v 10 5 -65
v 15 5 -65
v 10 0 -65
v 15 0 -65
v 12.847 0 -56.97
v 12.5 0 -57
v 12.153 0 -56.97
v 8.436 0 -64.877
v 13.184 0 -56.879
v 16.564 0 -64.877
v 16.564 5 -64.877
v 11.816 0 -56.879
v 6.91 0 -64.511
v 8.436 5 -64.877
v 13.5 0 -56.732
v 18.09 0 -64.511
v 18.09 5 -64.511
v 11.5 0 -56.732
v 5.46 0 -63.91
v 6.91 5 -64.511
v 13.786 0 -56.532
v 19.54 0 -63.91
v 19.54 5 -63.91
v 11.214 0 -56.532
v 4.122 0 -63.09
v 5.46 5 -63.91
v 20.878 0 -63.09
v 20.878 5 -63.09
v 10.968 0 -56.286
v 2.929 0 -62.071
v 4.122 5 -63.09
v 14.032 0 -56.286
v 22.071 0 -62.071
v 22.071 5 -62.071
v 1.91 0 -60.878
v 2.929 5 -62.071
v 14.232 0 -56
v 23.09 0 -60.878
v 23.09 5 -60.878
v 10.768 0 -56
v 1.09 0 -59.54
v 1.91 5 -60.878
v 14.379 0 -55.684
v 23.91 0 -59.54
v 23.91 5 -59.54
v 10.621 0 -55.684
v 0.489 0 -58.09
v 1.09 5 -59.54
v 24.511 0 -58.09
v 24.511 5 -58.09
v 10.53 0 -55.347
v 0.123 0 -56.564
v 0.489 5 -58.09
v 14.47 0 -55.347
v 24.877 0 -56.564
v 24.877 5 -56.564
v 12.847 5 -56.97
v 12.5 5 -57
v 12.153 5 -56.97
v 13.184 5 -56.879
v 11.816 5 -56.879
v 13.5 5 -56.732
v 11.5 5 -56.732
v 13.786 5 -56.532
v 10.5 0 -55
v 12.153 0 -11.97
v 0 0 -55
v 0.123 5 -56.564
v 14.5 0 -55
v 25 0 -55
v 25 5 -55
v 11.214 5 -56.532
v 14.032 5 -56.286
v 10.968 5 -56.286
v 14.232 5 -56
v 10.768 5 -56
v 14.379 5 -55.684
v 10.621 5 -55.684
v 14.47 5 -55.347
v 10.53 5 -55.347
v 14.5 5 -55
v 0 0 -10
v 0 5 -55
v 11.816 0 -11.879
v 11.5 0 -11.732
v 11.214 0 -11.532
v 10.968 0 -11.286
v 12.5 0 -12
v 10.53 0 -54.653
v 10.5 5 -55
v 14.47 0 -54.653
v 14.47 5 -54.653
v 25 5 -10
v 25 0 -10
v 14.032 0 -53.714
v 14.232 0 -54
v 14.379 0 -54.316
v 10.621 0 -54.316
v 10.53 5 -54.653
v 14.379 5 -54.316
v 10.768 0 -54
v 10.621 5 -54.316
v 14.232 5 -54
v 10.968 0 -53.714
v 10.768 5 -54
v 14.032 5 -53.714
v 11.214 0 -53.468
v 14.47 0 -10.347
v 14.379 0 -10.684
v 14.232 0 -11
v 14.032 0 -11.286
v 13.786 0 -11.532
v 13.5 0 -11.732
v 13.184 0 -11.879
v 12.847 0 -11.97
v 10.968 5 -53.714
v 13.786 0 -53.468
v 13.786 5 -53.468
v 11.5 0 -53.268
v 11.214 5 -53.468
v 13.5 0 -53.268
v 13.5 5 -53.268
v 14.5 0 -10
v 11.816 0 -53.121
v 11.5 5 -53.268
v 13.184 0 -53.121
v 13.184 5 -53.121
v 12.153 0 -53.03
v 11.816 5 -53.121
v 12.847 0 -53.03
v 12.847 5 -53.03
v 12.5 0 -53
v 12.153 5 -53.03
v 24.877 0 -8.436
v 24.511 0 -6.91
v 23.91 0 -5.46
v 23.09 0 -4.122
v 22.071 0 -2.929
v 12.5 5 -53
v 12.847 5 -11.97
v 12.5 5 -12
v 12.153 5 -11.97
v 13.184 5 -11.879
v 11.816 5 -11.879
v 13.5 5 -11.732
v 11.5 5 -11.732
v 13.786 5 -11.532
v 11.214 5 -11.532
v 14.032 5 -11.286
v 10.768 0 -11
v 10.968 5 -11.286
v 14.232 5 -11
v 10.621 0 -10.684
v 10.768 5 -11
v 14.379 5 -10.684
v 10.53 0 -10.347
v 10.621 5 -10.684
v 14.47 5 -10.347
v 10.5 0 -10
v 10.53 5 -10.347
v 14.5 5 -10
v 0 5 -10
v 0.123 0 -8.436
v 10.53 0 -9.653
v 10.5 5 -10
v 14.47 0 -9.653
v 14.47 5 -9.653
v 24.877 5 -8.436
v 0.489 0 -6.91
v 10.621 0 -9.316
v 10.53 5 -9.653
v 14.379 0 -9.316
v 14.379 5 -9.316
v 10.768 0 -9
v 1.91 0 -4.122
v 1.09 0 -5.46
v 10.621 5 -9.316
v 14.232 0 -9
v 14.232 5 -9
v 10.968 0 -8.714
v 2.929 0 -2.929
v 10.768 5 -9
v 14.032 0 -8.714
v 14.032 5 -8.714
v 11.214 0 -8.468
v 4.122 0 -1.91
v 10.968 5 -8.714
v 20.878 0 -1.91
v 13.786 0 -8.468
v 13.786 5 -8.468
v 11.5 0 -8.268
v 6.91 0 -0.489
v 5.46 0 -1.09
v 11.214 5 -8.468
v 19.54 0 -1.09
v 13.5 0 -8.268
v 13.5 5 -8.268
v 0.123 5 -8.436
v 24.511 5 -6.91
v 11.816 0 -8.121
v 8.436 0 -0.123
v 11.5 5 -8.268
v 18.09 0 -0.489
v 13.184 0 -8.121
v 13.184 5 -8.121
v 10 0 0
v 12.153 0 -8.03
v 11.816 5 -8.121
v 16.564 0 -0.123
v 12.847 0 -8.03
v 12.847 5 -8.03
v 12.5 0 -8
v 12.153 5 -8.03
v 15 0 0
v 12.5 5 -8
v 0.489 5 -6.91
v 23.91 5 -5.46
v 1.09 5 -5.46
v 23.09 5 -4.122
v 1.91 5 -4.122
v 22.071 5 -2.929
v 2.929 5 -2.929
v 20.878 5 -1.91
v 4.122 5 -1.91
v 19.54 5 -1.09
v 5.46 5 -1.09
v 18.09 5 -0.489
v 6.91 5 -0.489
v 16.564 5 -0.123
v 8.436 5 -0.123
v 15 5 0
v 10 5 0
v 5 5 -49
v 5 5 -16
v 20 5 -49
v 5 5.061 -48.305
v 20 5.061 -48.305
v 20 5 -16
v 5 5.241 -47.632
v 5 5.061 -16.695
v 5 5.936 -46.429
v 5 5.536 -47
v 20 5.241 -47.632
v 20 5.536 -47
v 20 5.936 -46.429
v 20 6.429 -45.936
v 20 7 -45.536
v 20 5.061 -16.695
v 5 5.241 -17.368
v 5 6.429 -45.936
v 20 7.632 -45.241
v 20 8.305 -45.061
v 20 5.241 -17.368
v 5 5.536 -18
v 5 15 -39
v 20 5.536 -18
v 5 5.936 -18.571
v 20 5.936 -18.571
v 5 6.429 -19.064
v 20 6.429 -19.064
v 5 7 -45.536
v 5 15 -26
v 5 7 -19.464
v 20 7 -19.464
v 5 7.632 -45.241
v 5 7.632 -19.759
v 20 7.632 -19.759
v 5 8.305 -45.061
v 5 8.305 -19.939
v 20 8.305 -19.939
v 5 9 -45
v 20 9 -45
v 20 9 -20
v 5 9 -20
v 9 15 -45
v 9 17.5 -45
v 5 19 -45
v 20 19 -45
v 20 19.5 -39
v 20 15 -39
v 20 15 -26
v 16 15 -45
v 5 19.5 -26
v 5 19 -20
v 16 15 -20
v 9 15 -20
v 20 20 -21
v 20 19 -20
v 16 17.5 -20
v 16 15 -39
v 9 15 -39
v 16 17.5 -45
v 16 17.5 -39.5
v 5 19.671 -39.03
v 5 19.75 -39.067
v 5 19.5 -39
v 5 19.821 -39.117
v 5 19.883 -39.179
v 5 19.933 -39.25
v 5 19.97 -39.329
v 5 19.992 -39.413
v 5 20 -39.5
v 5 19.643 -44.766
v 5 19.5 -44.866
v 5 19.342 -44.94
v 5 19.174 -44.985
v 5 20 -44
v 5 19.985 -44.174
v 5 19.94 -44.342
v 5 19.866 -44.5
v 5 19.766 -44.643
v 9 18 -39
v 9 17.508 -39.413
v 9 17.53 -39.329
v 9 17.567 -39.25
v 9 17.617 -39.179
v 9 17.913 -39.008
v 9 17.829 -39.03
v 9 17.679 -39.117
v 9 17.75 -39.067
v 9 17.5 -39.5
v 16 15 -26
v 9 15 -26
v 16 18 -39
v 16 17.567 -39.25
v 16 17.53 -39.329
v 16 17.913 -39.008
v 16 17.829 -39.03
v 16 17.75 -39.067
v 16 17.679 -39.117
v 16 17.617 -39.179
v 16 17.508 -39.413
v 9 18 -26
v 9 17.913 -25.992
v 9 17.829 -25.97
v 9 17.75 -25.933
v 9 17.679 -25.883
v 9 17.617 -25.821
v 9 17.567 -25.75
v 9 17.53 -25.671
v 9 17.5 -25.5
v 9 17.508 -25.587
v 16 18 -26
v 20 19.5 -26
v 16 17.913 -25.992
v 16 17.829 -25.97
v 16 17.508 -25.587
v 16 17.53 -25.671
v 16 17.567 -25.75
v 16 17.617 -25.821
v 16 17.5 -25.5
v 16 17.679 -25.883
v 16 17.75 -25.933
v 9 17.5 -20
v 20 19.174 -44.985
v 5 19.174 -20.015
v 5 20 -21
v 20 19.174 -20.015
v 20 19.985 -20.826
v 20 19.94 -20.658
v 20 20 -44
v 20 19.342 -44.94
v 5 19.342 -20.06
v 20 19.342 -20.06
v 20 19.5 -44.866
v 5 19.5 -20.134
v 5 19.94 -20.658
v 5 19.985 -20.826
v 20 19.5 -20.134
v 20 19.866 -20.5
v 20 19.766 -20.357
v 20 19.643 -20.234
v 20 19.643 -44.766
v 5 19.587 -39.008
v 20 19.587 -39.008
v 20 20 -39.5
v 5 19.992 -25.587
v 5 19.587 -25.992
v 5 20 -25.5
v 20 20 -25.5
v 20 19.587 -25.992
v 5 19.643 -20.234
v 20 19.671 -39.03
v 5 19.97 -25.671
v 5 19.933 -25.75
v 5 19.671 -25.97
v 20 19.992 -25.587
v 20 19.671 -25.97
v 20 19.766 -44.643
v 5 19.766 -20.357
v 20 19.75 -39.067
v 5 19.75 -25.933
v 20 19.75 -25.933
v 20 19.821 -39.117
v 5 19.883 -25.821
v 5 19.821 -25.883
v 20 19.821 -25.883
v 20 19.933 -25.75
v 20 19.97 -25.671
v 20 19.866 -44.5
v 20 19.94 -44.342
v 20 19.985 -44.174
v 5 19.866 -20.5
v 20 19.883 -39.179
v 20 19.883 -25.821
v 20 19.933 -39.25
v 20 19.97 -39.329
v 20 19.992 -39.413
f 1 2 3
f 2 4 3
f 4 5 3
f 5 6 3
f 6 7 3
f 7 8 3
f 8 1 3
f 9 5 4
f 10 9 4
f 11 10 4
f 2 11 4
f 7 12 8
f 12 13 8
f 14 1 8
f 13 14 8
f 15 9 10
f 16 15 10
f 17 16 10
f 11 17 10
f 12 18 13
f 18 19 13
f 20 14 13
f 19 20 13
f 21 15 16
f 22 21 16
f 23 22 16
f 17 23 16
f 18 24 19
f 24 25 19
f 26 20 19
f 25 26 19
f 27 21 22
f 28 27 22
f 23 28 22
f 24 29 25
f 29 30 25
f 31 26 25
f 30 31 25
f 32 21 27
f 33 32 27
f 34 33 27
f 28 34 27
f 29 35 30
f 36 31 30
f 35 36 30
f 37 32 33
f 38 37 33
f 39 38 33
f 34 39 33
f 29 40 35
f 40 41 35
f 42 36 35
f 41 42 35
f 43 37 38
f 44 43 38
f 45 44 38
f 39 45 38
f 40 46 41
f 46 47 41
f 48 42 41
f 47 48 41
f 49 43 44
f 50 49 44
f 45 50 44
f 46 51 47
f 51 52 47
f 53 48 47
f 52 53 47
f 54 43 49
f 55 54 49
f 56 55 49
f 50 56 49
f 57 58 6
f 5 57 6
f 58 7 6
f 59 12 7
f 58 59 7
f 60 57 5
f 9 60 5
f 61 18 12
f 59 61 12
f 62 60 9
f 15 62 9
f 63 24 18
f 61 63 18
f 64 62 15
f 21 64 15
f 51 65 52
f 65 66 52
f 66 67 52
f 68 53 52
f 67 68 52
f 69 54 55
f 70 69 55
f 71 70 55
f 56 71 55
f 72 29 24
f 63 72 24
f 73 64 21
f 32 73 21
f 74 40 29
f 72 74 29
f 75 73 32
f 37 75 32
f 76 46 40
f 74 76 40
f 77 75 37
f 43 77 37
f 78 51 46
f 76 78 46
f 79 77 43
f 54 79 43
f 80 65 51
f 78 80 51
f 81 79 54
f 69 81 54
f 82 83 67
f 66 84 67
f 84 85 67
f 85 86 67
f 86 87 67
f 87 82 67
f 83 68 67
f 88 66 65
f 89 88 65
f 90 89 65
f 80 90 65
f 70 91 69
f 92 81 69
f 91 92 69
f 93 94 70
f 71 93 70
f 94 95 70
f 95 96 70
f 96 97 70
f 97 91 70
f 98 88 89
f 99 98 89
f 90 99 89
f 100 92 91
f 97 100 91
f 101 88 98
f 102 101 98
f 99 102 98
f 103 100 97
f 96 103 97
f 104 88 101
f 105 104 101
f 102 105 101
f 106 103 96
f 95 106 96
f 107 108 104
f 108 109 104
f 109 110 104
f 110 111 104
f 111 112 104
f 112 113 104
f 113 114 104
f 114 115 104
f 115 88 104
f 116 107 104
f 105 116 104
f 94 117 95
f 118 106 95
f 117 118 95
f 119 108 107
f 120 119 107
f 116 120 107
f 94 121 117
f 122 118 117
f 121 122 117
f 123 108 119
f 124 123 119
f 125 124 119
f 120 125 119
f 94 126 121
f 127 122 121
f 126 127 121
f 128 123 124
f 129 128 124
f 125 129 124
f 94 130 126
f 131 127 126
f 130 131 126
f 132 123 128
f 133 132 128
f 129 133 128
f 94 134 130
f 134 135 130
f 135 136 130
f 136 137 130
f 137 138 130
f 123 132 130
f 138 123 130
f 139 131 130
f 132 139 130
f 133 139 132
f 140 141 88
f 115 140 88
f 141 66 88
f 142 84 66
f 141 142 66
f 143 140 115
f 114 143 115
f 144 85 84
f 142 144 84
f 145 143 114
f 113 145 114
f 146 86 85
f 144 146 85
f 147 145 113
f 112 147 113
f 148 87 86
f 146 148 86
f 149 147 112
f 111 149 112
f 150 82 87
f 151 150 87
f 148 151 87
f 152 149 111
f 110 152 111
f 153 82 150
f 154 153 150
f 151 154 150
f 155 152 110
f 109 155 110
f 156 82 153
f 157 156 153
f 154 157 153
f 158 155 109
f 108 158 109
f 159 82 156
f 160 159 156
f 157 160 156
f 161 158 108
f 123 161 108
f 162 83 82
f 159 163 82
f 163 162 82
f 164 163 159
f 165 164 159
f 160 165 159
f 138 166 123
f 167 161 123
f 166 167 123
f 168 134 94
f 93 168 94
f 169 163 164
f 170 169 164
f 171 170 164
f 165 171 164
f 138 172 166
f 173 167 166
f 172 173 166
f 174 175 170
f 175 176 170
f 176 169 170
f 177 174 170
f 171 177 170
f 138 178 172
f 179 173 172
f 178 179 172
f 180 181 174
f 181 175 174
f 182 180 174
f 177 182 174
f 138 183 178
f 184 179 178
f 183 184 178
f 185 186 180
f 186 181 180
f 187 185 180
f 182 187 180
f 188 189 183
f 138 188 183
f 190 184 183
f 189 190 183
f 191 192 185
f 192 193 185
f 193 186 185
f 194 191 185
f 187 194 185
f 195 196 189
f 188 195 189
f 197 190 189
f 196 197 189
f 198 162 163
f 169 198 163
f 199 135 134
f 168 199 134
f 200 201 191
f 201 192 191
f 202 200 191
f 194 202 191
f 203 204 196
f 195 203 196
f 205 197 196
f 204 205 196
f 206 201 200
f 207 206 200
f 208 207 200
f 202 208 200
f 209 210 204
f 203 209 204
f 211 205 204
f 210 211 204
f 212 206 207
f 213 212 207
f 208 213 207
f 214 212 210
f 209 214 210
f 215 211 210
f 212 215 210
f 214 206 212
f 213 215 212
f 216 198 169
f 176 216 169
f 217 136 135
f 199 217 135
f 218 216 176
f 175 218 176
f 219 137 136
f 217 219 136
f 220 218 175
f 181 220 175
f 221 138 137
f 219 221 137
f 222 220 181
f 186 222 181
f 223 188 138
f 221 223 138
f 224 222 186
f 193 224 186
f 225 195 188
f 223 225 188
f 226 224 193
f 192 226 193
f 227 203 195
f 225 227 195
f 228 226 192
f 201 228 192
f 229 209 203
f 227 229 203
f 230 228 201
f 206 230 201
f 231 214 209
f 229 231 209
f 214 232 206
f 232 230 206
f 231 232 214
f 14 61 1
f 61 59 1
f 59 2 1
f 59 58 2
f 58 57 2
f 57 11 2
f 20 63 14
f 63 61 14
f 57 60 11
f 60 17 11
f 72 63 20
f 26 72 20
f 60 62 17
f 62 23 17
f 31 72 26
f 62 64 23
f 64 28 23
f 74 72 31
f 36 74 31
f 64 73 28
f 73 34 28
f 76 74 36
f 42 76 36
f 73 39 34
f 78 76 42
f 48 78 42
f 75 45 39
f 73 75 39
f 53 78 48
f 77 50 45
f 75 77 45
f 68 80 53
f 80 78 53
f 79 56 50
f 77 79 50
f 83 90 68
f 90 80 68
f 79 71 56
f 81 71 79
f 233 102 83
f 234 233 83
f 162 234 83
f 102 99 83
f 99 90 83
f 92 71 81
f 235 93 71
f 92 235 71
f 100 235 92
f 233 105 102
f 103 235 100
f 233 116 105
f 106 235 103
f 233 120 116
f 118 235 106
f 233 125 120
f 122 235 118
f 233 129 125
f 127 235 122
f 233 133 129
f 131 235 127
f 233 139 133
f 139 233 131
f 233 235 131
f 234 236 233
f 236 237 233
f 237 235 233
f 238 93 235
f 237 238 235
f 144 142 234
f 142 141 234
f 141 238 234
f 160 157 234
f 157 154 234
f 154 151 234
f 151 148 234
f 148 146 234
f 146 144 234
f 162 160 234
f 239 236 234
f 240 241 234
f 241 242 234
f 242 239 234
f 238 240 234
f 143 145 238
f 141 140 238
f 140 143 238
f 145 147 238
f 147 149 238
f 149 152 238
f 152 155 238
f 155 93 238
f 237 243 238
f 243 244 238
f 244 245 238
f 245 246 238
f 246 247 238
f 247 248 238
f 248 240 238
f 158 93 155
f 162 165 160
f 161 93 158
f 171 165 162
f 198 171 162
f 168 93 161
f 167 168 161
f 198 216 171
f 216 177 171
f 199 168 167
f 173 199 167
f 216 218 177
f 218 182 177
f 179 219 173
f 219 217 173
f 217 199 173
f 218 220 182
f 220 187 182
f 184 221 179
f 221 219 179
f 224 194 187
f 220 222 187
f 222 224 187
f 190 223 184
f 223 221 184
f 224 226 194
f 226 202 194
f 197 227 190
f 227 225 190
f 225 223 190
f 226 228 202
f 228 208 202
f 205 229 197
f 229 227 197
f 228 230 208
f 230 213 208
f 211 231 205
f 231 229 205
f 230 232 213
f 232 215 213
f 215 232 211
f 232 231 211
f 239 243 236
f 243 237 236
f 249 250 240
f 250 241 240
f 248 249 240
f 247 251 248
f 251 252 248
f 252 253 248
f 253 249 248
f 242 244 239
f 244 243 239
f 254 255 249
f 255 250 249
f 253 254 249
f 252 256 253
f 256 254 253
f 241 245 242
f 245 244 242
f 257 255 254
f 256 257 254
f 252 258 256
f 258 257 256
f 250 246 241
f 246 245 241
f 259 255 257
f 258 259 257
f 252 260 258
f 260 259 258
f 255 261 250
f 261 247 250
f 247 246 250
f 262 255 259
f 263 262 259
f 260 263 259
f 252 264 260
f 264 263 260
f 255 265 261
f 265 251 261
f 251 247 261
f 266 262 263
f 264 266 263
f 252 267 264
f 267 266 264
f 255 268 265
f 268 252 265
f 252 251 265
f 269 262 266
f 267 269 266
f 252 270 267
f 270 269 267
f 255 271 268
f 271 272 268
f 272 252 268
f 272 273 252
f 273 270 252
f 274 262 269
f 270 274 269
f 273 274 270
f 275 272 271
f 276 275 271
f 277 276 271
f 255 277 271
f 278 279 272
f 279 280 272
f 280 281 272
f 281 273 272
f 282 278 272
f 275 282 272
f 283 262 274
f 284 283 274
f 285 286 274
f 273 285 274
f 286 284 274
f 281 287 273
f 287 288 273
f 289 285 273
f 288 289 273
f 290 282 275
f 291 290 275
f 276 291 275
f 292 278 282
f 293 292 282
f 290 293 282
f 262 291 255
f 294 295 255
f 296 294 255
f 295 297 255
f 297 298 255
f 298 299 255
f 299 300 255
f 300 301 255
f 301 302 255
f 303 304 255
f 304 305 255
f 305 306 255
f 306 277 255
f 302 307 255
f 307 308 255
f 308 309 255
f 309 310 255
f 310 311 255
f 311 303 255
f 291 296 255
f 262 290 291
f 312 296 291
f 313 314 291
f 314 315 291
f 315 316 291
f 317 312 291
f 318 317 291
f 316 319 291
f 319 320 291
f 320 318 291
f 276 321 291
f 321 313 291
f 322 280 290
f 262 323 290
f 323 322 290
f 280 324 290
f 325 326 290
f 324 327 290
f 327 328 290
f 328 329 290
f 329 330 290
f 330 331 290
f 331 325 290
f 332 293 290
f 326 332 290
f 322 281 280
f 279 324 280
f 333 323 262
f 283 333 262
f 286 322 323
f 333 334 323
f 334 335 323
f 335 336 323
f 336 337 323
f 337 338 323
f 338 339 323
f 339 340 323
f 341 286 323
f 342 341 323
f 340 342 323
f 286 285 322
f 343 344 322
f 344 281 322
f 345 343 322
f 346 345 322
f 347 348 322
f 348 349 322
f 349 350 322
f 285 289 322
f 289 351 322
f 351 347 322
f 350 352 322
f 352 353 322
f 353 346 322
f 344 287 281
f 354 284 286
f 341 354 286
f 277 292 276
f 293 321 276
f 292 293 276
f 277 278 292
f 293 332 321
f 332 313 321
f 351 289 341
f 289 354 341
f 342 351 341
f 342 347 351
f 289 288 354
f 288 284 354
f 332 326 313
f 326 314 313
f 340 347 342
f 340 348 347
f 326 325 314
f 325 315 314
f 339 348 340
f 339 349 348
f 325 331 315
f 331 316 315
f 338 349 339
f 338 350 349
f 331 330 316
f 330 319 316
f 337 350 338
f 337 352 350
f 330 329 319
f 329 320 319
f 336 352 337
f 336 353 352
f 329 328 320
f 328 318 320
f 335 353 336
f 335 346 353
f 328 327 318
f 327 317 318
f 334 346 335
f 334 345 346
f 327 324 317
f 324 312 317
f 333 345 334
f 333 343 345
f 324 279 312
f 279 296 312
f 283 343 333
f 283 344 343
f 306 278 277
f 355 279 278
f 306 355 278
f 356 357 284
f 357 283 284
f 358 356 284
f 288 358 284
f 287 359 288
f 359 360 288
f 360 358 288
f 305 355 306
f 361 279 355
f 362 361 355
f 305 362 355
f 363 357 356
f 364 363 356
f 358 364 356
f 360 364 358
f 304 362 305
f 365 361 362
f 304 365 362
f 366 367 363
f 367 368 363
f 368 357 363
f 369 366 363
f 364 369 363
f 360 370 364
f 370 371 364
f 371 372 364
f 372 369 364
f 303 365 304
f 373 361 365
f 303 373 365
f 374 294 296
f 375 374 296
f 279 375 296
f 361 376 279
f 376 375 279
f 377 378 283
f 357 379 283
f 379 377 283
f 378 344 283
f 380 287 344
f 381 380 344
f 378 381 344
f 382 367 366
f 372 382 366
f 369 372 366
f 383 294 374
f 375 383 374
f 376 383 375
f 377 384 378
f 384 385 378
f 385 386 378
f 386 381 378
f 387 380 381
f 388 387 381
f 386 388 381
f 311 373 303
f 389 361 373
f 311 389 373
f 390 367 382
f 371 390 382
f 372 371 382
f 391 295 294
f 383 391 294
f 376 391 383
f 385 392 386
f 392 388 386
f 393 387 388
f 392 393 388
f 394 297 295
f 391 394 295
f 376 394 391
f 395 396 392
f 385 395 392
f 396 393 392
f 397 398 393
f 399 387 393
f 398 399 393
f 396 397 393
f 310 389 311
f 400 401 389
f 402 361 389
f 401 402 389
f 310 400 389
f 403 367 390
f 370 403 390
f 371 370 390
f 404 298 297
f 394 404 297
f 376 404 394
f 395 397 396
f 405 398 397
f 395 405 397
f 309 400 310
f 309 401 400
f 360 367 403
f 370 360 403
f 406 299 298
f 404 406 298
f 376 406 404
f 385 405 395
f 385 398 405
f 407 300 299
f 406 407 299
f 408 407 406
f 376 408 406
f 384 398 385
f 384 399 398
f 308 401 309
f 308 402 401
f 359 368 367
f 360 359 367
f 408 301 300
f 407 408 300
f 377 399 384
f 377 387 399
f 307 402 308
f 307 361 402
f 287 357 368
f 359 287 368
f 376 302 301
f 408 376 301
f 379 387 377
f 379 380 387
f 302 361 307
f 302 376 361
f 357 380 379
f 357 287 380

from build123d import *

# Parameters (mm, degrees)
SKETCH1_W           = 25
SKETCH1_H           = 65
BOSS_EXTRUDE1_DEPTH = 5
SKETCH2_R           = 2
CUT_EXTRUDE1_DEPTH  = 6
SKETCH3_W           = 15
SKETCH3_H           = 25
BOSS_EXTRUDE2_DEPTH = 10
SKETCH4_W           = 15
SKETCH4_H           = 6
BOSS_EXTRUDE3_DEPTH = 5
SKETCH5_W           = 7
SKETCH5_H           = 2.5
CUT_EXTRUDE2_DEPTH  = 46
FILLET1_R           = 0.5
FILLET2_R           = 0.5
FILLET3_R           = 1
FILLET4_R           = 10
FILLET5_R           = 4


with BuildPart() as part:
    # Sketch1 → Boss-Extrude1 (new body)
    with BuildSketch(Plane(origin=(0, 0, 0), x_dir=(1, 0, 0), z_dir=(0, 1, 0))):
        with Locations((12.5, 32.5)):
            Rectangle(SKETCH1_W, SKETCH1_H)
    extrude(amount=BOSS_EXTRUDE1_DEPTH)

    # Sketch2 → Cut-Extrude1 (cut, through all)
    with BuildSketch(Plane(origin=(0, 0, 0), x_dir=(1, 0, 0), z_dir=(0, 1, 0))):
        with Locations((12.5, 55)):
            Circle(SKETCH2_R)
        with Locations((12.5, 10)):
            Circle(SKETCH2_R)
    extrude(amount=CUT_EXTRUDE1_DEPTH, mode=Mode.SUBTRACT)

    # Sketch3 → Boss-Extrude2 (add)
    with BuildSketch(Plane(origin=(0, 5, 0), x_dir=(1, 0, 0), z_dir=(0, 1, 0))):
        with Locations((12.5, 32.5)):
            Rectangle(SKETCH3_W, SKETCH3_H)
    extrude(amount=BOSS_EXTRUDE2_DEPTH)

    # Sketch4 → Boss-Extrude3 (add)
    with BuildSketch(Plane(origin=(0, 15, 0), x_dir=(1, 0, 0), z_dir=(0, 1, 0))):
        with Locations((12.5, 42)):
            Rectangle(SKETCH4_W, SKETCH4_H)
        with Locations((12.5, 23)):
            Rectangle(SKETCH4_W, SKETCH4_H)
    extrude(amount=BOSS_EXTRUDE3_DEPTH)

    # Sketch5 → Cut-Extrude2 (cut, through all)
    with BuildSketch(Plane(origin=(0, 0, -45), x_dir=(-1, 0, 0), z_dir=(0, 0, -1))):
        with Locations((-12.5, 16.25)):
            Rectangle(SKETCH5_W, SKETCH5_H)
    extrude(amount=-CUT_EXTRUDE2_DEPTH, mode=Mode.SUBTRACT)

    # Fillet1
    fillet1_edges = [part.edges().sort_by_distance(p)[0] for p in [
        (12.5, 20, -39),
        (12.5, 17.5, -39),
    ]]
    fillet(fillet1_edges, radius=FILLET1_R)

    # Fillet2
    fillet2_edges = [part.edges().sort_by_distance(p)[0] for p in [
        (12.5, 20, -26),
        (12.5, 17.5, -26),
    ]]
    fillet(fillet2_edges, radius=FILLET2_R)

    # Fillet3
    fillet3_edges = [part.edges().sort_by_distance(p)[0] for p in [
        (12.5, 20, -45),
        (12.5, 20, -20),
    ]]
    fillet(fillet3_edges, radius=FILLET3_R)

    # Fillet4
    fillet4_edges = [part.edges().sort_by_distance(p)[0] for p in [
        (0, 2.5, -65),
        (25, 2.5, -65),
        (25, 2.5, 0),
        (0, 2.5, 0),
    ]]
    fillet(fillet4_edges, radius=FILLET4_R)

    # Fillet5
    fillet5_edges = [part.edges().sort_by_distance(p)[0] for p in [
        (12.5, 5, -45),
        (12.5, 5, -20),
    ]]
    fillet(fillet5_edges, radius=FILLET5_R)


solid = part.part
